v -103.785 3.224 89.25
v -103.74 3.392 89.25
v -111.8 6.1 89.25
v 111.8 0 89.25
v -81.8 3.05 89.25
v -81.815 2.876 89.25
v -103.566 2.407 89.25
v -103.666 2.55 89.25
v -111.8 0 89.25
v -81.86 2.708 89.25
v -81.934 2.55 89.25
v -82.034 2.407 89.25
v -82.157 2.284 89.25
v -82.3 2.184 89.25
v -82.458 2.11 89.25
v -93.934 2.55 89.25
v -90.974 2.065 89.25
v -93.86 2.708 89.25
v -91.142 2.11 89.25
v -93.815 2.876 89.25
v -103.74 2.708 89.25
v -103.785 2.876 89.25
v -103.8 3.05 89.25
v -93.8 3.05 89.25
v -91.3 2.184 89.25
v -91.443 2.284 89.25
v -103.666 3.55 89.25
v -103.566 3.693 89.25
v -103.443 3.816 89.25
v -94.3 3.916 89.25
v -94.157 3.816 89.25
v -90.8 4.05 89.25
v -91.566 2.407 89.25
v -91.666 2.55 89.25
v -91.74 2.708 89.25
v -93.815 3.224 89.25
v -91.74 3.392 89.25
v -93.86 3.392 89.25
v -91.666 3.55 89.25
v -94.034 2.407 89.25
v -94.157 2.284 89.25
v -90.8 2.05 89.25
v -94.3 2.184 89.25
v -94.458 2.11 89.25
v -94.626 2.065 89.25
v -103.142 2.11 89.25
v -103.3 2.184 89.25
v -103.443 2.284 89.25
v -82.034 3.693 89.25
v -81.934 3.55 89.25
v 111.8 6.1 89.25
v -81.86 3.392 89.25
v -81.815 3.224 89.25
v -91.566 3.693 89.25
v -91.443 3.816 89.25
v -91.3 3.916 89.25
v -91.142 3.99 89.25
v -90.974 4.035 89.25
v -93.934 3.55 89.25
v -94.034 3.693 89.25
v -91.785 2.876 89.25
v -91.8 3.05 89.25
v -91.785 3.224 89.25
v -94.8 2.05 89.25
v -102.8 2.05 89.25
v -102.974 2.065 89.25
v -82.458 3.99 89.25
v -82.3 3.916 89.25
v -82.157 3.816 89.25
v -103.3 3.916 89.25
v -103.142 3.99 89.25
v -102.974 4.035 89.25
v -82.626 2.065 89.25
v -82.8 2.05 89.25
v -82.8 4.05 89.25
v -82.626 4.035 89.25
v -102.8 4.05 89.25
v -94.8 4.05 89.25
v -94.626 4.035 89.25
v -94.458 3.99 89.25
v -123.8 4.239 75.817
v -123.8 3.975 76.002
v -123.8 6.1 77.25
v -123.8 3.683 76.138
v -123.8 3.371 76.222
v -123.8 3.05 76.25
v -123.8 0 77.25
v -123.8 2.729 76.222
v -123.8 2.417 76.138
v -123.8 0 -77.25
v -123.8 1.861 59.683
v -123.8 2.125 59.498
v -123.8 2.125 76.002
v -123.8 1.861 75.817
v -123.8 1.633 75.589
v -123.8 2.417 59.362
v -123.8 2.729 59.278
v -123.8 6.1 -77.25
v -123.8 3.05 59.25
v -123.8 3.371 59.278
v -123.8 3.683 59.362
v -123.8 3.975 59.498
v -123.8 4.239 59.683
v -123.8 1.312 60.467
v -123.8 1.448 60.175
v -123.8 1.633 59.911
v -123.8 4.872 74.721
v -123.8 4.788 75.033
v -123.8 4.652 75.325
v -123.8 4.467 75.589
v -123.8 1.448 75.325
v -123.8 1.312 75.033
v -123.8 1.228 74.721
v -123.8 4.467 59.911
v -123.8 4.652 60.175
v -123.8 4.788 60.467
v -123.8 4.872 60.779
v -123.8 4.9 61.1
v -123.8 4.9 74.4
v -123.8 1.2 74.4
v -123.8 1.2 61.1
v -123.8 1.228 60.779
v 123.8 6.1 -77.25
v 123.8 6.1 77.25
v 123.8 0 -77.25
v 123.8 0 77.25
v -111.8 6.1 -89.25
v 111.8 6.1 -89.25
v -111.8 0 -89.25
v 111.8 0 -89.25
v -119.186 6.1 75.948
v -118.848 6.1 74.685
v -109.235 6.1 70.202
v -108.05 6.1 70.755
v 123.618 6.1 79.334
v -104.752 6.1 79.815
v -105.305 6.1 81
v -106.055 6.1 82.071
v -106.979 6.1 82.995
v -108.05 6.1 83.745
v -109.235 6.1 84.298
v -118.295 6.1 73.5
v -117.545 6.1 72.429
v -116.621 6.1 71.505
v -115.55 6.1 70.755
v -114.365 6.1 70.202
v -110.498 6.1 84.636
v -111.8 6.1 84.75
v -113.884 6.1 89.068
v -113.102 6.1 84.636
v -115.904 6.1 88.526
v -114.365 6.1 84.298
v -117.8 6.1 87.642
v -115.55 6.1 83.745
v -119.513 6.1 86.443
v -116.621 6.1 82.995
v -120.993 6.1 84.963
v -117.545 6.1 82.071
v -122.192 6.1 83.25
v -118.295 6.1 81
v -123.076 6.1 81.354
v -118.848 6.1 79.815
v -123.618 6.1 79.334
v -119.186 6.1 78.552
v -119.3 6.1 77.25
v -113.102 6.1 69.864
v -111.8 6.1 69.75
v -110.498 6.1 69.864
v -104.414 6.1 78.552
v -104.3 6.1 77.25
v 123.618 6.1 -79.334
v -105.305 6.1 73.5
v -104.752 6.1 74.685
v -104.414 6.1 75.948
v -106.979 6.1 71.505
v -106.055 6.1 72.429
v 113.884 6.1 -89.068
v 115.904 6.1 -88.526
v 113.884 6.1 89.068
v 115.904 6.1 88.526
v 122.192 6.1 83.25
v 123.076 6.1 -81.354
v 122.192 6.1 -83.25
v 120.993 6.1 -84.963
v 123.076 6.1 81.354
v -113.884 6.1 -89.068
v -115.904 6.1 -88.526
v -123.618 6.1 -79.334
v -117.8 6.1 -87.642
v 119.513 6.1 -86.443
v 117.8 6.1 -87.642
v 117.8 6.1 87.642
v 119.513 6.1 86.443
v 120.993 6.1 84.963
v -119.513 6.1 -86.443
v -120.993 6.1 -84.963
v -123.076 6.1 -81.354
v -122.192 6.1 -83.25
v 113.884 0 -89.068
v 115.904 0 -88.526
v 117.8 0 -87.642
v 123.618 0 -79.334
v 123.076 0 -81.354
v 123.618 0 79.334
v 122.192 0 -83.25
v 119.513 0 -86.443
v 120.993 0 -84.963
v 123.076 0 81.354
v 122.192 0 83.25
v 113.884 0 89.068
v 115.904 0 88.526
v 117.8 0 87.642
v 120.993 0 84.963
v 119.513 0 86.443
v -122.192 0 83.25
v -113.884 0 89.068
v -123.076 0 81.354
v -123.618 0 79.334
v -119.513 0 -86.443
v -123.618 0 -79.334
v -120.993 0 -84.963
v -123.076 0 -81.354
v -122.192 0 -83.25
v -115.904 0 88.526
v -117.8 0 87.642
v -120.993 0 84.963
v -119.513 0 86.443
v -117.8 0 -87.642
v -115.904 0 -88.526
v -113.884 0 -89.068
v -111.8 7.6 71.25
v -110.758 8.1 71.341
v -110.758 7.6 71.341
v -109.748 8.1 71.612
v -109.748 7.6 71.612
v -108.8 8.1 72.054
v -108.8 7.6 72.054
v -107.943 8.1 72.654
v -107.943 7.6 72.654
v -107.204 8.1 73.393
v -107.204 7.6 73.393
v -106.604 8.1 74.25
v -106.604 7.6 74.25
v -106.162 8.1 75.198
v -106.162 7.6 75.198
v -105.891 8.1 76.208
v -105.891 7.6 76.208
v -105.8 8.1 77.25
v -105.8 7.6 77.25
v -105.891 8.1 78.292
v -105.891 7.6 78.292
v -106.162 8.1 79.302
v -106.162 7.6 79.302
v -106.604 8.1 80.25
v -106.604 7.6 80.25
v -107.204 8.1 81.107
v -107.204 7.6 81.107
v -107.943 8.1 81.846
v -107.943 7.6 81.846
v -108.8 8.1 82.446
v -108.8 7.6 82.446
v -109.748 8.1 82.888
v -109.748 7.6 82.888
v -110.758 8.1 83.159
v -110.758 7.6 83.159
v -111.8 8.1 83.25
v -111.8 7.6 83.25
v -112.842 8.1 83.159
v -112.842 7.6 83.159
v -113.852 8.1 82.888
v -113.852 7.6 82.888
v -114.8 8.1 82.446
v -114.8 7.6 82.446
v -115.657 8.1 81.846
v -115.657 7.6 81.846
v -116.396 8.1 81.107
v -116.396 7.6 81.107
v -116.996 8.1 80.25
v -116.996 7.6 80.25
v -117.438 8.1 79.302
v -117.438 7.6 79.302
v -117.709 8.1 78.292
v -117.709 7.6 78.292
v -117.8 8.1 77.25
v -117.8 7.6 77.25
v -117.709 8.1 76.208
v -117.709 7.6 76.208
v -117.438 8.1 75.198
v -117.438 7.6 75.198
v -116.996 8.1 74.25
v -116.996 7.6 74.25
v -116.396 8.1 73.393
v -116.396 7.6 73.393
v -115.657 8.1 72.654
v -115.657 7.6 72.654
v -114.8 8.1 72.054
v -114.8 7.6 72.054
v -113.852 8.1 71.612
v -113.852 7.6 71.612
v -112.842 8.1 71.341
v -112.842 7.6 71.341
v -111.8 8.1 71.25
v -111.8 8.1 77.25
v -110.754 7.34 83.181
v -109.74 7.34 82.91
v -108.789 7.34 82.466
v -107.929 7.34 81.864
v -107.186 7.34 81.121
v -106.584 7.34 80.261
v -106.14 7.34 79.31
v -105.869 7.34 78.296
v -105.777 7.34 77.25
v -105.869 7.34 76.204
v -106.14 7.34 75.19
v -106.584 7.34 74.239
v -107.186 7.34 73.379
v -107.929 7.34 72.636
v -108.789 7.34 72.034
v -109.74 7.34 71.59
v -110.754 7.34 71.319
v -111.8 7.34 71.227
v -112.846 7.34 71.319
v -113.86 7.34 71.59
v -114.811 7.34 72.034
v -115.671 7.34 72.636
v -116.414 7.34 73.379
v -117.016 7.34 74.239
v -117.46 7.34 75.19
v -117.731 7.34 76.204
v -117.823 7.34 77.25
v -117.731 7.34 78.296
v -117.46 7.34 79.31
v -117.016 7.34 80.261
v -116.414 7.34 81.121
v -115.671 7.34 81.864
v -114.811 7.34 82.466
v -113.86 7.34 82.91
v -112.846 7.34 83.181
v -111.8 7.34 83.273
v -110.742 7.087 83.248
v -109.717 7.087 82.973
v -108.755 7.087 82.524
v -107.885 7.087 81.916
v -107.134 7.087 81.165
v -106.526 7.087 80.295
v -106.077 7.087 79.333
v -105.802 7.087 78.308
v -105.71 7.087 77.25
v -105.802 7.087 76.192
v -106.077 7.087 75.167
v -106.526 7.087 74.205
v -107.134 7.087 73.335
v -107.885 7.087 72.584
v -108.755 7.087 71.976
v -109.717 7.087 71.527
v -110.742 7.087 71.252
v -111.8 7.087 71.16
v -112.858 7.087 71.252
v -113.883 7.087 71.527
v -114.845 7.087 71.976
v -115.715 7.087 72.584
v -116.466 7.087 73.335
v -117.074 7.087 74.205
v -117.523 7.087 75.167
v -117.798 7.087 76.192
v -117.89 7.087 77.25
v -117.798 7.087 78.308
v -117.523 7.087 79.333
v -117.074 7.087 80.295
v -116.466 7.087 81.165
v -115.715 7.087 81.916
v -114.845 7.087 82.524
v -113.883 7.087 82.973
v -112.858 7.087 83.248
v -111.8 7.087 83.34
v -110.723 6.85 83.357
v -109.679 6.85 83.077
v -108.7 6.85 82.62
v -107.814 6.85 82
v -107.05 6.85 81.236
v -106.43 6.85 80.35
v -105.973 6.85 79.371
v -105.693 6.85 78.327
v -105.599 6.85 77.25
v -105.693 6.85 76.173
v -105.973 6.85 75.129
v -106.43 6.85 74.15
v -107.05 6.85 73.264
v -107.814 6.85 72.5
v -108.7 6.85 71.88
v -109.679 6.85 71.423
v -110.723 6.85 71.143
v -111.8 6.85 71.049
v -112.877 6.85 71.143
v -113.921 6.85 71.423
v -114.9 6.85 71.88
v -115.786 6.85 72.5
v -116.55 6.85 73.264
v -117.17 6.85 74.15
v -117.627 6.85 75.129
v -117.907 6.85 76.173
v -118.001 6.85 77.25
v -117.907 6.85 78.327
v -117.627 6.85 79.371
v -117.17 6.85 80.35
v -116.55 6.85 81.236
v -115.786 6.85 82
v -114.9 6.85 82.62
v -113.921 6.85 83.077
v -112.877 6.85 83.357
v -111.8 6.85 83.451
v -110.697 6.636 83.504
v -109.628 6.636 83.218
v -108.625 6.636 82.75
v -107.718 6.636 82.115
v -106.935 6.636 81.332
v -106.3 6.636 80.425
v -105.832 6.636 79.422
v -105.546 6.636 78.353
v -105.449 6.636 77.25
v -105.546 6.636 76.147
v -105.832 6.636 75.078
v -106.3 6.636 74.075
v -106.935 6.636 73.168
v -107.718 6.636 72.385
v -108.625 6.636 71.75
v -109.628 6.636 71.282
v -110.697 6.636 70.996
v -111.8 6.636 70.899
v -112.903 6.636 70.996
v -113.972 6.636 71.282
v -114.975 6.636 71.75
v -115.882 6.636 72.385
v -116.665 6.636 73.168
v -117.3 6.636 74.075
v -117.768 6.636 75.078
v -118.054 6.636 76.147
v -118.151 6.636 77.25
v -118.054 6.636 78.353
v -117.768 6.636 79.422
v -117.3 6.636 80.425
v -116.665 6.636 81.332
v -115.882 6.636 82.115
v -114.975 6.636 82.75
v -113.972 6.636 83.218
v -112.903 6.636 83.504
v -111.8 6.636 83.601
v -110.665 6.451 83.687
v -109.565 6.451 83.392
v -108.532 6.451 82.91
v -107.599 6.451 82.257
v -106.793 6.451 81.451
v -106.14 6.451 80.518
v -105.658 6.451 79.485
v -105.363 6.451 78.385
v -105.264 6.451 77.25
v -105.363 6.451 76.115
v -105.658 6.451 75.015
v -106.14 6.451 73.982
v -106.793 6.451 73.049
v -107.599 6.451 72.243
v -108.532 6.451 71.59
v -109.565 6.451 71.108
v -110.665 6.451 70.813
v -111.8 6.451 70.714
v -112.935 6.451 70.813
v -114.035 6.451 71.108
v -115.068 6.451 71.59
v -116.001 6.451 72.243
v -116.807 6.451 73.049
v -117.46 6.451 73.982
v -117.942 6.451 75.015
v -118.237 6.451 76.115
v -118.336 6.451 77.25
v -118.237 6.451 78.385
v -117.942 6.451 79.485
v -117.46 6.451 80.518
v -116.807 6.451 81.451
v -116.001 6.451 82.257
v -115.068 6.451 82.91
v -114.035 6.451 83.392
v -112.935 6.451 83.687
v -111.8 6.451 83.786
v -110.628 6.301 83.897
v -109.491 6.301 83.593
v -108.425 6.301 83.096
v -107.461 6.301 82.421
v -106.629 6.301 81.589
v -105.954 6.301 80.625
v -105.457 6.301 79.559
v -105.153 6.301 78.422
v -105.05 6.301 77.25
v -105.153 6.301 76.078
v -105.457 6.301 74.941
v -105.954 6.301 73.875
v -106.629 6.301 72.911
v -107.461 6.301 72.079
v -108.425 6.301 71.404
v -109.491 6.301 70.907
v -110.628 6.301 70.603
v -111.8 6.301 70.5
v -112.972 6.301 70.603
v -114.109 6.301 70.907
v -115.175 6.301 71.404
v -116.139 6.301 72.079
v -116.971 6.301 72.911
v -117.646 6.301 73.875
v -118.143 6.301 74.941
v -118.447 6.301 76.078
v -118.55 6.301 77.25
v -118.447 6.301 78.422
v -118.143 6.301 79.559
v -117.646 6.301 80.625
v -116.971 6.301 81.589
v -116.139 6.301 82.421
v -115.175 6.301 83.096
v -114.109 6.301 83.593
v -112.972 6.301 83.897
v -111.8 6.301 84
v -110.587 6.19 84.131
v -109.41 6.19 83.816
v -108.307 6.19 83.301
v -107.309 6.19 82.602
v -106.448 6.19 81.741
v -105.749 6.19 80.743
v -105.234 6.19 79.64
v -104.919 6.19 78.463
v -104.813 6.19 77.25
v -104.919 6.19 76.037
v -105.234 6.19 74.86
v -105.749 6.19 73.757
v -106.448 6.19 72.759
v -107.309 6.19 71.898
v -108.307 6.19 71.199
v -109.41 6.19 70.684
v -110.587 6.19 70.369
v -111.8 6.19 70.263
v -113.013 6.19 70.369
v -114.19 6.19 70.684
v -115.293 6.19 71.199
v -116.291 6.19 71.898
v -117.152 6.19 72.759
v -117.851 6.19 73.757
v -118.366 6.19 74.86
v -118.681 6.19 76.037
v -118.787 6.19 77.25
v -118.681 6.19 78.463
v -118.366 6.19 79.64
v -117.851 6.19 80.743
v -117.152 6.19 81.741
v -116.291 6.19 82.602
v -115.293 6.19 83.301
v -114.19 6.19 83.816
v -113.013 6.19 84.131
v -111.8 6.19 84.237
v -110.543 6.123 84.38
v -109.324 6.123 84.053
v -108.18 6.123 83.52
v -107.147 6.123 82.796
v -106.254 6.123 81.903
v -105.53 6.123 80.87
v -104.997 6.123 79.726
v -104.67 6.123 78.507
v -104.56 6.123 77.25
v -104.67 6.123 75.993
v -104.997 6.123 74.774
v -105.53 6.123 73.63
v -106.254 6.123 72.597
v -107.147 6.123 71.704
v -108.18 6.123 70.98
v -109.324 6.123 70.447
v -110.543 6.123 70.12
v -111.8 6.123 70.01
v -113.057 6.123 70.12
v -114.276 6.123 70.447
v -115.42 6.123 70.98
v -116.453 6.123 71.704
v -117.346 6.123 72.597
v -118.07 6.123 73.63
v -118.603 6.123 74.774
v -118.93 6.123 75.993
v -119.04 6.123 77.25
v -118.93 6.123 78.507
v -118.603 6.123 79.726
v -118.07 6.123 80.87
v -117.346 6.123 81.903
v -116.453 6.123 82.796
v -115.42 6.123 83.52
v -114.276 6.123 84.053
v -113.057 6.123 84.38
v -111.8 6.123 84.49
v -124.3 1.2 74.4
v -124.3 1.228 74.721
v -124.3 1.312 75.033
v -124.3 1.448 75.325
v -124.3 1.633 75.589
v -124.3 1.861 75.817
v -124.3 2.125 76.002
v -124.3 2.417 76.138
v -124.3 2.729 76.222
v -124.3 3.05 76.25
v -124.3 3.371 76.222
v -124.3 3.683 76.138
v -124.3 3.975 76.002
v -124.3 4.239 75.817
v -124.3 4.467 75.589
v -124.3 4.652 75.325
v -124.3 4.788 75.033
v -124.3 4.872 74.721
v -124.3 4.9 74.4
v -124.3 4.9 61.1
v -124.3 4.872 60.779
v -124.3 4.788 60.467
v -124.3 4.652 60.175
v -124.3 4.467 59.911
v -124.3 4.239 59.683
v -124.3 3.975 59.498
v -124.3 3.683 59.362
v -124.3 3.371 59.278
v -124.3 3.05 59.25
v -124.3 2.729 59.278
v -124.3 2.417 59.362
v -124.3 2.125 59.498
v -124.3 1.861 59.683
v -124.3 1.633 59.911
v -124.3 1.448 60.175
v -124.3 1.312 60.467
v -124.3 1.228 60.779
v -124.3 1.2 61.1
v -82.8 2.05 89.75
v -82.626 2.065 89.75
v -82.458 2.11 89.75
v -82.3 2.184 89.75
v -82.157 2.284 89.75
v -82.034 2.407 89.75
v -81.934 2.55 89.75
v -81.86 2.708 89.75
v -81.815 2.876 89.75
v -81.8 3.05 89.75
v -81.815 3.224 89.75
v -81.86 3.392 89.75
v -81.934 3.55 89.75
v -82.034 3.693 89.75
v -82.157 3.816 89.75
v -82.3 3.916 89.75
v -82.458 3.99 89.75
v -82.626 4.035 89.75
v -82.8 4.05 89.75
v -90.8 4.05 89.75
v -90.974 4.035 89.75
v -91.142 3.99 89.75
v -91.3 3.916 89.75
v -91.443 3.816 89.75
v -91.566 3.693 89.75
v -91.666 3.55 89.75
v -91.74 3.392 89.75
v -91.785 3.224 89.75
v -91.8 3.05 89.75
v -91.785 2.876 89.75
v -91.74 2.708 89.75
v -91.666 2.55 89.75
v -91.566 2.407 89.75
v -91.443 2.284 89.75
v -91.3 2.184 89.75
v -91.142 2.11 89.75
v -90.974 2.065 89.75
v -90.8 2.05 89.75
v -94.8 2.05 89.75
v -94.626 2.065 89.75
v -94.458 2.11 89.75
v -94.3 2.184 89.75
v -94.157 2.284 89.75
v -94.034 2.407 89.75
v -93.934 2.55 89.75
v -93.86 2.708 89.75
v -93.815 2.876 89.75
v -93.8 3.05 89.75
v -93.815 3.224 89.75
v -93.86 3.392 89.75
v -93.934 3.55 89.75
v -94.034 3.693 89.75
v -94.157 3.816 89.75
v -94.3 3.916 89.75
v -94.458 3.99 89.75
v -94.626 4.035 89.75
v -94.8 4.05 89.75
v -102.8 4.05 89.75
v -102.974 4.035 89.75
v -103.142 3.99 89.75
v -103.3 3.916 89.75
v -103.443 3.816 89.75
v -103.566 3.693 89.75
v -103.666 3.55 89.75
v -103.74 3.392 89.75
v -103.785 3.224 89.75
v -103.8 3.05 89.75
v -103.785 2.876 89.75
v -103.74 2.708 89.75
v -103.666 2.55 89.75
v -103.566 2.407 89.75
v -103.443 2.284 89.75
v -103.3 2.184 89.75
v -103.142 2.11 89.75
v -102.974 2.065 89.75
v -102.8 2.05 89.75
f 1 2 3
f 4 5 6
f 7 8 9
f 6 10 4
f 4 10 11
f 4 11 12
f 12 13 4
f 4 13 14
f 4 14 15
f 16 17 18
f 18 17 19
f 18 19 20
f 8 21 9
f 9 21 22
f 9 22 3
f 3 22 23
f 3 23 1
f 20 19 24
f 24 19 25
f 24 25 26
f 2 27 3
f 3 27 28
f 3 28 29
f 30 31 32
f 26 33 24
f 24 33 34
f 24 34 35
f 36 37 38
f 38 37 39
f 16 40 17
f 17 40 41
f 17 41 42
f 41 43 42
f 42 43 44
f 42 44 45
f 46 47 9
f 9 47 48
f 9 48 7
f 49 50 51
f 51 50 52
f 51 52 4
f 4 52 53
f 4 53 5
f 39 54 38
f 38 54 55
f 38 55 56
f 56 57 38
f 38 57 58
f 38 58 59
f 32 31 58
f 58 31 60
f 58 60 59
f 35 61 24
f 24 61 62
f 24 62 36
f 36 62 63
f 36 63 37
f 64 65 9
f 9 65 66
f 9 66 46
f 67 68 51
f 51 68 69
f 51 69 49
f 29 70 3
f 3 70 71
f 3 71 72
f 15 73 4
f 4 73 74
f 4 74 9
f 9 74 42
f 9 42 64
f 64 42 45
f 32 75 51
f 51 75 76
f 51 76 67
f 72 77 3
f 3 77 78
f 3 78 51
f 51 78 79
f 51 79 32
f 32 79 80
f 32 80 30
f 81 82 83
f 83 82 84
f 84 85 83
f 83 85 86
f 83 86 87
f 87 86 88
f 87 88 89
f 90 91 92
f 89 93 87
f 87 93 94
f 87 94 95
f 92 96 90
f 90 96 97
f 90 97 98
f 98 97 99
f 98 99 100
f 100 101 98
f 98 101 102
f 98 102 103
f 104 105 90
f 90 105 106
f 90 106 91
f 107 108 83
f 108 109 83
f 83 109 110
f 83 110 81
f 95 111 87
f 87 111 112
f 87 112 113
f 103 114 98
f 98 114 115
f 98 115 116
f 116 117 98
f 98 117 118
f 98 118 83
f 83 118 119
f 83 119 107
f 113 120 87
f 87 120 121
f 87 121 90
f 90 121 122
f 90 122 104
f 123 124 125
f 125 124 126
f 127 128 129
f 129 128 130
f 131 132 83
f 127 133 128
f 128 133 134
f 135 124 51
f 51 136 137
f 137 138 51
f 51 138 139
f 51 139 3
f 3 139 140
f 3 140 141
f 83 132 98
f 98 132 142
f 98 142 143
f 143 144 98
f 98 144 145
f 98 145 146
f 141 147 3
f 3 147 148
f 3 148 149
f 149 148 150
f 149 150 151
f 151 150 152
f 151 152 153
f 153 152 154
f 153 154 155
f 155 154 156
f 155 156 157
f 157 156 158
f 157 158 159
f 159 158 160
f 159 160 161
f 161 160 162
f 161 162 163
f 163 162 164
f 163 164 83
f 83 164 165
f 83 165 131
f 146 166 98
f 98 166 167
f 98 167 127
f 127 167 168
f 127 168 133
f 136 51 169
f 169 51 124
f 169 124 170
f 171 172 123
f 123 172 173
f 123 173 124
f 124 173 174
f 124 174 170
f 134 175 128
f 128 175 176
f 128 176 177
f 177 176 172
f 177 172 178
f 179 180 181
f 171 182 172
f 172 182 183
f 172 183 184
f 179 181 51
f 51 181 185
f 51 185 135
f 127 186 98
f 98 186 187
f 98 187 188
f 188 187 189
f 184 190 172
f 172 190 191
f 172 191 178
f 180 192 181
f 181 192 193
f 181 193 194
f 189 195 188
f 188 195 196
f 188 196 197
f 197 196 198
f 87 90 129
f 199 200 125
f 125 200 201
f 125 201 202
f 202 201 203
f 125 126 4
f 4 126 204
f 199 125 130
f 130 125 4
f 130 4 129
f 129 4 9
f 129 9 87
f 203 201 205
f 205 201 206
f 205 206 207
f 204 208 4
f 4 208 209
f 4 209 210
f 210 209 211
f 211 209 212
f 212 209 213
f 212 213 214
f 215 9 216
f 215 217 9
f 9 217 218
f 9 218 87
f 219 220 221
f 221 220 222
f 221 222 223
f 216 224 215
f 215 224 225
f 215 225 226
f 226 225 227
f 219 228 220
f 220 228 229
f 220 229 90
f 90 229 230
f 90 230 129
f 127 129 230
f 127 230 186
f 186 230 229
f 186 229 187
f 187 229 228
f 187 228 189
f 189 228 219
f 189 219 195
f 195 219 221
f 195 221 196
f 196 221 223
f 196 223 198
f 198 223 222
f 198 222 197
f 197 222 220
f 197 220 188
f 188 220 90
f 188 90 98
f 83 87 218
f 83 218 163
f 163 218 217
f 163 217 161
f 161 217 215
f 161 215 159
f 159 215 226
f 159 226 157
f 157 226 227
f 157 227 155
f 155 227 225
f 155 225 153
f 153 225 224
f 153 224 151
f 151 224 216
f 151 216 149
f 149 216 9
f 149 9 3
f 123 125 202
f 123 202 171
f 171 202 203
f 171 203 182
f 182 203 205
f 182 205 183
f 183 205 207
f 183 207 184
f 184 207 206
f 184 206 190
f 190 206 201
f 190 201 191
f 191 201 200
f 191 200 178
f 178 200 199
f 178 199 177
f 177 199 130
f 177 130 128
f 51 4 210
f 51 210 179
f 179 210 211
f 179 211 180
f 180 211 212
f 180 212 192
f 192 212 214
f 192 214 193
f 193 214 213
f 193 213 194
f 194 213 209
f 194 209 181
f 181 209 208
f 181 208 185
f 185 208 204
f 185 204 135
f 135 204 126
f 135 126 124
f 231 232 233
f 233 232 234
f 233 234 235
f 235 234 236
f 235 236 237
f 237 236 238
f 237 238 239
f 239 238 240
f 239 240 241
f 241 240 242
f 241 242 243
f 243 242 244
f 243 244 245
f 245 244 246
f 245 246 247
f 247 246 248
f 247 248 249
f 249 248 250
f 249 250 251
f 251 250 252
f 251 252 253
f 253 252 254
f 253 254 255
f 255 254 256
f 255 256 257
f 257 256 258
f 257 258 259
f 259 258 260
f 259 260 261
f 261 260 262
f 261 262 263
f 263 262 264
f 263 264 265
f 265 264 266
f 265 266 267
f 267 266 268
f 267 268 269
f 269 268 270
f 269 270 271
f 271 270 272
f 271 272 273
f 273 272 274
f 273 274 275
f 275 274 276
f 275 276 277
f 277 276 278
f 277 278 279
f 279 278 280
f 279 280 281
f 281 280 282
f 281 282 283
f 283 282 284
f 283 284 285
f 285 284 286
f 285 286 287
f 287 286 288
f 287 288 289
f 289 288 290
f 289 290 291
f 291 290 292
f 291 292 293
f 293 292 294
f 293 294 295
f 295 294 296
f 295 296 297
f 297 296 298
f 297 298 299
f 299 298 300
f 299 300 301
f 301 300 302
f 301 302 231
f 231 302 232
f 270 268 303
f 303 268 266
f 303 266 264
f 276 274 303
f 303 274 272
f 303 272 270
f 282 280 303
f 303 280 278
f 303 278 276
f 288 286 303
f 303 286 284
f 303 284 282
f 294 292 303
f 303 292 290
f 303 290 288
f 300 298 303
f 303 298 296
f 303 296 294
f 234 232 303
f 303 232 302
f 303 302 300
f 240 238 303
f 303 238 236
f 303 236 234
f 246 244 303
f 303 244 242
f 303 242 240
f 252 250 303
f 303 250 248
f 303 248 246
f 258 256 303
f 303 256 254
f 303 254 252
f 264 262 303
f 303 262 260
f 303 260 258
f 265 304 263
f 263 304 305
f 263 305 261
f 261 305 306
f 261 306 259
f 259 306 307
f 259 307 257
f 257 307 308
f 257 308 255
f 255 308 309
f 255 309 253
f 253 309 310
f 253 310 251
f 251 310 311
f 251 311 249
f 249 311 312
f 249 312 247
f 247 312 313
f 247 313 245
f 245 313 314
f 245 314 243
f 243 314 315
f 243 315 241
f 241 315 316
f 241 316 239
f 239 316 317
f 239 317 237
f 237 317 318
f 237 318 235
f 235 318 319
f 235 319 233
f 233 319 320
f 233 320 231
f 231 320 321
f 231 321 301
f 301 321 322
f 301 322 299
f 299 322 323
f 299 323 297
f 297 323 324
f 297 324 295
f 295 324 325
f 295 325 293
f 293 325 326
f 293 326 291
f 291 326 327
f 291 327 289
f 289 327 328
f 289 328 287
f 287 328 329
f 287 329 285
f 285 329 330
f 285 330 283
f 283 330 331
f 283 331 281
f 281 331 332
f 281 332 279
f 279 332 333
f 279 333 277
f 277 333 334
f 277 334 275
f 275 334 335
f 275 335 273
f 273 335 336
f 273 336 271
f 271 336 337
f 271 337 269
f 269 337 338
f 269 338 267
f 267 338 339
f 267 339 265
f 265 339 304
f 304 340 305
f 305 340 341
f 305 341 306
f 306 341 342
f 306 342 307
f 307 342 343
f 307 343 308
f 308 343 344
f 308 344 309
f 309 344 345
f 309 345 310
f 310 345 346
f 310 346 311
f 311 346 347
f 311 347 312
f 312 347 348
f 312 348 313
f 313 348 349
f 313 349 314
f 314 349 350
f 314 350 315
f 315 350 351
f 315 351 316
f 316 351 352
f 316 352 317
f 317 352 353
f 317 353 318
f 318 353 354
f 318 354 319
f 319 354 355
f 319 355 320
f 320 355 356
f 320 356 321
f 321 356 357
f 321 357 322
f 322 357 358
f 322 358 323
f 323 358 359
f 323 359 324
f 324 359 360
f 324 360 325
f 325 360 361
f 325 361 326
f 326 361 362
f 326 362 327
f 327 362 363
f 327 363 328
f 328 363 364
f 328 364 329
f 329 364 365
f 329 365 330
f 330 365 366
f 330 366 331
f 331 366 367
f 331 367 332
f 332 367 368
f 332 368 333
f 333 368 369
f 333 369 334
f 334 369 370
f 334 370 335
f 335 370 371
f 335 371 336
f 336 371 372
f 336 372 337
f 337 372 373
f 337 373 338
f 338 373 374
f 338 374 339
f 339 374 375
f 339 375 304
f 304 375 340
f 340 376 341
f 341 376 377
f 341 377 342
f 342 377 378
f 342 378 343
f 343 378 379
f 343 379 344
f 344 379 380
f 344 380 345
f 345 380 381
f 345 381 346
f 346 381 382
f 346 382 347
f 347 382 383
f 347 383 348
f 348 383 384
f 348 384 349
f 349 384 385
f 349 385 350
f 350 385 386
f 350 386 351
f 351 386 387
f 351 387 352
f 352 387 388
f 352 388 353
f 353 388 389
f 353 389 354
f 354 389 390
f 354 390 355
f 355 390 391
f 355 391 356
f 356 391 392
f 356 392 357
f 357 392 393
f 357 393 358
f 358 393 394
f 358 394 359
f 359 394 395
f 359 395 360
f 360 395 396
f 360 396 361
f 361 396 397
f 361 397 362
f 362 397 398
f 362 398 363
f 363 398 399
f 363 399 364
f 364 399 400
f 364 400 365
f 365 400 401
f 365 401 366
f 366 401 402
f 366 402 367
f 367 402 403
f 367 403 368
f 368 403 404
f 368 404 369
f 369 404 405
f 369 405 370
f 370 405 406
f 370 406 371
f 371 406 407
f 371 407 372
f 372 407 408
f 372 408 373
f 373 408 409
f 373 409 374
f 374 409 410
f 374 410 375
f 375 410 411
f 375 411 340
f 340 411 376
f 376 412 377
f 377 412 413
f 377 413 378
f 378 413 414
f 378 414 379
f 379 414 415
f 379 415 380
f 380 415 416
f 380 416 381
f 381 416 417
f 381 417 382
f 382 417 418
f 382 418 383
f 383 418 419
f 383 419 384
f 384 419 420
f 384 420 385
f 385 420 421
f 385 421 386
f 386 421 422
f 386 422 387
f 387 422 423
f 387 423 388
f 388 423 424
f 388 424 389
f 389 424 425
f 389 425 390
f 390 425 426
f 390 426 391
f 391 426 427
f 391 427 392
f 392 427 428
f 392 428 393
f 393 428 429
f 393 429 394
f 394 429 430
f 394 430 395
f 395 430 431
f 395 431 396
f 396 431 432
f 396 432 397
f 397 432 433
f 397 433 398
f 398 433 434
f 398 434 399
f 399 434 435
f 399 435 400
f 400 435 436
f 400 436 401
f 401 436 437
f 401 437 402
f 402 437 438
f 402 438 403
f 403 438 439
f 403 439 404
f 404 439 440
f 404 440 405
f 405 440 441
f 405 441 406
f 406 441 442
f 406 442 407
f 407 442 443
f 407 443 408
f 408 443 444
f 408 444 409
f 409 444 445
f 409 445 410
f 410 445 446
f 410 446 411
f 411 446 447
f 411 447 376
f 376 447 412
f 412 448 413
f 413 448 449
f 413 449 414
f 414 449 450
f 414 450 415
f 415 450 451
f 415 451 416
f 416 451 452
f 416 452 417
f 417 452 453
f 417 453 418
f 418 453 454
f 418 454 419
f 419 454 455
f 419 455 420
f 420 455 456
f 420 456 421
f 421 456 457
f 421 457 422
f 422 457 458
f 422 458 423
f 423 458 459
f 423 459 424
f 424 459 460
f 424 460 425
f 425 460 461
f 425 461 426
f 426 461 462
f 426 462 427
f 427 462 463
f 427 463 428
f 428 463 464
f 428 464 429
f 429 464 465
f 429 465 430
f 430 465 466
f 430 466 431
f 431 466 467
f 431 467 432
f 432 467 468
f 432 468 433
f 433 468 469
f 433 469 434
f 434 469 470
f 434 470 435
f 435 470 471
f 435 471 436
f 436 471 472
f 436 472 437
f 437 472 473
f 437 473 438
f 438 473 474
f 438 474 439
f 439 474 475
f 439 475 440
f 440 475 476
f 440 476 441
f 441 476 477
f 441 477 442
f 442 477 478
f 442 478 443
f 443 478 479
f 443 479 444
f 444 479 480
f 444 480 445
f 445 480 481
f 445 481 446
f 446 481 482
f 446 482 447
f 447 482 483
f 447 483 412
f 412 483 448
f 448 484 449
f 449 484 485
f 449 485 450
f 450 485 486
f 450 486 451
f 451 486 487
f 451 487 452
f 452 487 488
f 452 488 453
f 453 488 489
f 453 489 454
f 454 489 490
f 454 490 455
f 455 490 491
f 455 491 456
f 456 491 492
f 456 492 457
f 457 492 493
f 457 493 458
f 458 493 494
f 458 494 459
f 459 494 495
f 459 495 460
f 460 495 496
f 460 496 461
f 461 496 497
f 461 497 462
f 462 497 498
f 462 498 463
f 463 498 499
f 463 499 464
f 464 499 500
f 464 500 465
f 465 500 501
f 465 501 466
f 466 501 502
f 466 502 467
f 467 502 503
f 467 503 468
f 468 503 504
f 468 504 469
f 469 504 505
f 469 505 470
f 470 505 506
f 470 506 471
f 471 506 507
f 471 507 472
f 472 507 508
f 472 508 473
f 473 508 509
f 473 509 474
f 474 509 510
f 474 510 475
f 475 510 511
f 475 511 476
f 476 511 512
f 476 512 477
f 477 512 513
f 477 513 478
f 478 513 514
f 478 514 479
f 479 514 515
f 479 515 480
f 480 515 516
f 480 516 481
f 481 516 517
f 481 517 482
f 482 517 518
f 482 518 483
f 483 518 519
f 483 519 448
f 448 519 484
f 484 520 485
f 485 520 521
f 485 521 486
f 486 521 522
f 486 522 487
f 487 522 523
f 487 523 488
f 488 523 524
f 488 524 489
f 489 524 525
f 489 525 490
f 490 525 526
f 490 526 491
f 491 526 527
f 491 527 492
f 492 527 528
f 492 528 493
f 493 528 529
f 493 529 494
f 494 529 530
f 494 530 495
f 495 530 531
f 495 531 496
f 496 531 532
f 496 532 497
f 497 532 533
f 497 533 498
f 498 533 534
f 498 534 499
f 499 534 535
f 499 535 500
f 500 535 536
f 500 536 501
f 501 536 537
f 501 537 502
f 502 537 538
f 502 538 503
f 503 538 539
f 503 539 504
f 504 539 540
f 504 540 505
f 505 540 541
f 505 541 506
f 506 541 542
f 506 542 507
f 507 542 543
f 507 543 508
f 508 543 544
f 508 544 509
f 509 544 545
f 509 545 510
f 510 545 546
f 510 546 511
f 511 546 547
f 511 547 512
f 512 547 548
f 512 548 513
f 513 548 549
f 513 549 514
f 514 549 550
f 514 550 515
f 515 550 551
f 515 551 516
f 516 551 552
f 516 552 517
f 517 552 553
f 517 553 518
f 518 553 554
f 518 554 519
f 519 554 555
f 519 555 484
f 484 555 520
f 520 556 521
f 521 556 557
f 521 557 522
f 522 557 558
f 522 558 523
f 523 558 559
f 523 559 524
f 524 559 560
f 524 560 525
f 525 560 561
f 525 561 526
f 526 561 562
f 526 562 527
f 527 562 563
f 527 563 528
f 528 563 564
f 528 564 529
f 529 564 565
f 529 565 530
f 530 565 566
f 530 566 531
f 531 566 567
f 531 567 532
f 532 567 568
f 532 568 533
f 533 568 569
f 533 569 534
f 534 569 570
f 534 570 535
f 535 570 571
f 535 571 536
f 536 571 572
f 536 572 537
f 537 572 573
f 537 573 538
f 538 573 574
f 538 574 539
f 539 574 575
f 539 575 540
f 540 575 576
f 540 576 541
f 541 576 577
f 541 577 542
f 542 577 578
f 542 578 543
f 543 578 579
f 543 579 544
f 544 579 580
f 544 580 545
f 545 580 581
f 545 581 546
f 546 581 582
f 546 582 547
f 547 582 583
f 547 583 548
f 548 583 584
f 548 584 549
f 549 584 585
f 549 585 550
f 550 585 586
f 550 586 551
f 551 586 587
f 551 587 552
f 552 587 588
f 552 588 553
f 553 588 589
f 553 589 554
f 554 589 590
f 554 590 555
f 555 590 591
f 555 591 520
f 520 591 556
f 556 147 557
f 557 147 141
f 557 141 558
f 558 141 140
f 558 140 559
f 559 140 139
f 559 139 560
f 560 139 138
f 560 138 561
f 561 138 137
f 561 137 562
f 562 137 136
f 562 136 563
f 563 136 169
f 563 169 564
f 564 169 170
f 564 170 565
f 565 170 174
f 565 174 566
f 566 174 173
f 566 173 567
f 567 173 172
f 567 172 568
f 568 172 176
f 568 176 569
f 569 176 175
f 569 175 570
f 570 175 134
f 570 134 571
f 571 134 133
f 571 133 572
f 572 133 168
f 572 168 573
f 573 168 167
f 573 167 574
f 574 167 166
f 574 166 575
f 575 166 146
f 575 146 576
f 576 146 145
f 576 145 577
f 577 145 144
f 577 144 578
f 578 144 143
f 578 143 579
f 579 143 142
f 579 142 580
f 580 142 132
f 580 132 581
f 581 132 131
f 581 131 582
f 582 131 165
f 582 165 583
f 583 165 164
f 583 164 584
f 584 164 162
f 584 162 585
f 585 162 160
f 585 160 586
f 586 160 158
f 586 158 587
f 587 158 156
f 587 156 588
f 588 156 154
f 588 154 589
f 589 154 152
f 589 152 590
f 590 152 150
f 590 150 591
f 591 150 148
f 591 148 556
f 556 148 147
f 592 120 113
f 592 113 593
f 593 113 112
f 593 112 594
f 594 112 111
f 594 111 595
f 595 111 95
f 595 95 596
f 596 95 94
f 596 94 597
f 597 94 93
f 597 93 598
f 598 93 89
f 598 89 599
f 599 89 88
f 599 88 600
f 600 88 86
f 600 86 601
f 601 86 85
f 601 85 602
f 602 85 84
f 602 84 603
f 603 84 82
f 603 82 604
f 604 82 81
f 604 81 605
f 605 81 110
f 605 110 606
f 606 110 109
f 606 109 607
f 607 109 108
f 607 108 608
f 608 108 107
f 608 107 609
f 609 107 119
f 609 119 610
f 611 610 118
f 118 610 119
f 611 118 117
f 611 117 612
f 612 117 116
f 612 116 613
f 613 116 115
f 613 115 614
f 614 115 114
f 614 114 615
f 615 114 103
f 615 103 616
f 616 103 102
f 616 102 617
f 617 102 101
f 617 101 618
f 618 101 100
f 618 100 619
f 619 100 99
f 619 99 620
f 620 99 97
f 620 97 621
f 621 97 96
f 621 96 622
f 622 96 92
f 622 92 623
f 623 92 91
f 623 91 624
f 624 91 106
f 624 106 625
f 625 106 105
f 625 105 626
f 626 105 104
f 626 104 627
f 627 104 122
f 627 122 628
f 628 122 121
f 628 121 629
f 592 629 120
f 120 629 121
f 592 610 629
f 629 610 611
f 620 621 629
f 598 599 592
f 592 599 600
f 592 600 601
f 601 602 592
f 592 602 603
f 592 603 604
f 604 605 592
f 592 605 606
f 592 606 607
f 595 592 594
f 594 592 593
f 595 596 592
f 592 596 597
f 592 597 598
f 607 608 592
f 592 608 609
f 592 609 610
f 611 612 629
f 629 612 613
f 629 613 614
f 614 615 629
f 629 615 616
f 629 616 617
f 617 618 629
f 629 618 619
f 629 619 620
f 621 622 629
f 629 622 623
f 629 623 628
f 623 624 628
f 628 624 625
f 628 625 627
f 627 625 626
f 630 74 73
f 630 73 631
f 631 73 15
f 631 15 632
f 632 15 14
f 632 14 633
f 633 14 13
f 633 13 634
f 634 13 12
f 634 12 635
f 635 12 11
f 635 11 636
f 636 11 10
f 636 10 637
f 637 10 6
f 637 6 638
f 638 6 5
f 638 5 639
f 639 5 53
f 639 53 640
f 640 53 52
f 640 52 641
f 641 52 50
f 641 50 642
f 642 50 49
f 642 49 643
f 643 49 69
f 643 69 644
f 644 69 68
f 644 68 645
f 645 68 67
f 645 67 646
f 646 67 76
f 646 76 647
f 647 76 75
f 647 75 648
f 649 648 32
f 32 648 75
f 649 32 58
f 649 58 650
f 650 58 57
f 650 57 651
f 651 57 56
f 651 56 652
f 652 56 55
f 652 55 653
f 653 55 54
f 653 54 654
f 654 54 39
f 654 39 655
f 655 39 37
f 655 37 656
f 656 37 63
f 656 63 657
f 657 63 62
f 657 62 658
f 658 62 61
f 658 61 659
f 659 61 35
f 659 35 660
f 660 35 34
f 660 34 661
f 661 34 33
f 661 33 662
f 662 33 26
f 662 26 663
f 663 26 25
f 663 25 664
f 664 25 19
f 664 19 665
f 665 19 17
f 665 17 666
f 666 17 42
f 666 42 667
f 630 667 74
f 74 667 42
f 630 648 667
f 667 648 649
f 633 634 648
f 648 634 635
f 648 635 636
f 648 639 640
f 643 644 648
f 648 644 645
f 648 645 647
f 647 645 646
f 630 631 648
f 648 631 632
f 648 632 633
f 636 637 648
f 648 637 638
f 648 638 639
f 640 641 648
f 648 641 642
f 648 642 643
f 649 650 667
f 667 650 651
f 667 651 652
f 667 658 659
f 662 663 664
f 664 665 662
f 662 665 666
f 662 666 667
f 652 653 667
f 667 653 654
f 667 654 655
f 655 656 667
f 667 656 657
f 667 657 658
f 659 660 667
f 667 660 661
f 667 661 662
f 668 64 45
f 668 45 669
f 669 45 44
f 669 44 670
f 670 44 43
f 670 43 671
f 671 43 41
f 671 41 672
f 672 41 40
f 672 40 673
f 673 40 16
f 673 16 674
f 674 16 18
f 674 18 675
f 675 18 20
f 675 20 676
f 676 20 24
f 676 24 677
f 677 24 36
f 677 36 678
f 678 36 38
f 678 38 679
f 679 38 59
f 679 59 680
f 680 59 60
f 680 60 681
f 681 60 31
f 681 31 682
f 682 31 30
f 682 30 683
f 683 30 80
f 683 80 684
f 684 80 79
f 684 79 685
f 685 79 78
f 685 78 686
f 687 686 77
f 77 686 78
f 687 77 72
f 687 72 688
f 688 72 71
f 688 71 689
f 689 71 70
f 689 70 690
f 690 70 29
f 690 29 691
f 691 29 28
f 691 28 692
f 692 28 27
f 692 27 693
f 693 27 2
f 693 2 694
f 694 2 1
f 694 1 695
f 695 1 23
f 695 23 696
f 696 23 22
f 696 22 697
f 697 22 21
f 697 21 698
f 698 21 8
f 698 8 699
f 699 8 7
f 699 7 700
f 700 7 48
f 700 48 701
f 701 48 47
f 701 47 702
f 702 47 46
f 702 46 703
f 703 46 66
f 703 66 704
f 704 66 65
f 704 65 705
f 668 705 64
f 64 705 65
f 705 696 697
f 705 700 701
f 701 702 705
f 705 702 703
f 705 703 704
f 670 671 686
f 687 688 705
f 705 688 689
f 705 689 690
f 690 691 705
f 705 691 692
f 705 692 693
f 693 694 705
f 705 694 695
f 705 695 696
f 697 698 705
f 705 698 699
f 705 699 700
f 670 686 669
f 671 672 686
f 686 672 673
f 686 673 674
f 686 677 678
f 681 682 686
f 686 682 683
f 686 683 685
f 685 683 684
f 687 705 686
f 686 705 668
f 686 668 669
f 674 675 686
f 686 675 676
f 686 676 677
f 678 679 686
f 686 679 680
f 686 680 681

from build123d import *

# Parameters (mm, degrees)
SKIZZE1_W                       = 247.6
SKIZZE1_H                       = 178.5
AUFSATZ_LINEAR_AUSTRAGEN1_DEPTH = 6.1
VERRUNDUNG1_R                   = 12
SKIZZE2_R                       = 6
AUFSATZ_LINEAR_AUSTRAGEN2_DEPTH = 2
VERRUNDUNG2_R                   = 1.5
AUFSATZ_LINEAR_AUSTRAGEN3_DEPTH = 0.5
AUFSATZ_LINEAR_AUSTRAGEN5_DEPTH = 0.5


with BuildPart() as part:
    # Skizze1 → Aufsatz-Linear austragen1 (new body)
    with BuildSketch(Plane(origin=(0, 0, 0), x_dir=(1, 0, 0), z_dir=(0, 1, 0))):
        Rectangle(SKIZZE1_W, SKIZZE1_H)
    extrude(amount=AUFSATZ_LINEAR_AUSTRAGEN1_DEPTH)

    # Verrundung1
    verrundung1_edges = [part.edges().sort_by_distance(p)[0] for p in [
        (-123.8, 3.05, -89.25),
        (123.8, 3.05, -89.25),
        (123.8, 3.05, 89.25),
        (-123.8, 3.05, 89.25),
    ]]
    fillet(verrundung1_edges, radius=VERRUNDUNG1_R)

    # Skizze2 → Aufsatz-Linear austragen2 (add)
    with BuildSketch(Plane(origin=(0, 6.1, 0), x_dir=(1, 0, 0), z_dir=(0, 1, 0))):
        with Locations((-111.8, -77.25)):
            Circle(SKIZZE2_R)
    extrude(amount=AUFSATZ_LINEAR_AUSTRAGEN2_DEPTH)

    # Verrundung2
    verrundung2_edges = [part.edges().sort_by_distance(p)[0] for p in [
        (-117.8, 6.1, 77.25),
    ]]
    fillet(verrundung2_edges, radius=VERRUNDUNG2_R)

    # Skizze3 → Aufsatz-Linear austragen3 (add)
    with BuildSketch(Plane.ZY.offset(123.8)):
        with BuildLine():
            Line((74.4, 1.2), (61.1, 1.2))
            ThreePointArc((61.1, 1.2), (59.25, 3.05), (61.1, 4.9))
            Line((61.1, 4.9), (74.4, 4.9))
            ThreePointArc((74.4, 4.9), (76.25, 3.05), (74.4, 1.2))
        make_face()
    extrude(amount=AUFSATZ_LINEAR_AUSTRAGEN3_DEPTH)

    # Skizze4 → Aufsatz-Linear austragen5 (add)
    with BuildSketch(Plane.XY.offset(89.25)):
        with BuildLine():
            Line((-102.8, 4.05), (-94.8, 4.05))
            ThreePointArc((-94.8, 4.05), (-93.8, 3.05), (-94.8, 2.05))
            Line((-94.8, 2.05), (-102.8, 2.05))
            ThreePointArc((-102.8, 2.05), (-103.8, 3.05), (-102.8, 4.05))
        make_face()
        with BuildLine():
            Line((-90.8, 4.05), (-82.8, 4.05))
            ThreePointArc((-82.8, 4.05), (-81.8, 3.05), (-82.8, 2.05))
            Line((-82.8, 2.05), (-90.8, 2.05))
            ThreePointArc((-90.8, 2.05), (-91.8, 3.05), (-90.8, 4.05))
        make_face()
    extrude(amount=AUFSATZ_LINEAR_AUSTRAGEN5_DEPTH)


solid = part.part
